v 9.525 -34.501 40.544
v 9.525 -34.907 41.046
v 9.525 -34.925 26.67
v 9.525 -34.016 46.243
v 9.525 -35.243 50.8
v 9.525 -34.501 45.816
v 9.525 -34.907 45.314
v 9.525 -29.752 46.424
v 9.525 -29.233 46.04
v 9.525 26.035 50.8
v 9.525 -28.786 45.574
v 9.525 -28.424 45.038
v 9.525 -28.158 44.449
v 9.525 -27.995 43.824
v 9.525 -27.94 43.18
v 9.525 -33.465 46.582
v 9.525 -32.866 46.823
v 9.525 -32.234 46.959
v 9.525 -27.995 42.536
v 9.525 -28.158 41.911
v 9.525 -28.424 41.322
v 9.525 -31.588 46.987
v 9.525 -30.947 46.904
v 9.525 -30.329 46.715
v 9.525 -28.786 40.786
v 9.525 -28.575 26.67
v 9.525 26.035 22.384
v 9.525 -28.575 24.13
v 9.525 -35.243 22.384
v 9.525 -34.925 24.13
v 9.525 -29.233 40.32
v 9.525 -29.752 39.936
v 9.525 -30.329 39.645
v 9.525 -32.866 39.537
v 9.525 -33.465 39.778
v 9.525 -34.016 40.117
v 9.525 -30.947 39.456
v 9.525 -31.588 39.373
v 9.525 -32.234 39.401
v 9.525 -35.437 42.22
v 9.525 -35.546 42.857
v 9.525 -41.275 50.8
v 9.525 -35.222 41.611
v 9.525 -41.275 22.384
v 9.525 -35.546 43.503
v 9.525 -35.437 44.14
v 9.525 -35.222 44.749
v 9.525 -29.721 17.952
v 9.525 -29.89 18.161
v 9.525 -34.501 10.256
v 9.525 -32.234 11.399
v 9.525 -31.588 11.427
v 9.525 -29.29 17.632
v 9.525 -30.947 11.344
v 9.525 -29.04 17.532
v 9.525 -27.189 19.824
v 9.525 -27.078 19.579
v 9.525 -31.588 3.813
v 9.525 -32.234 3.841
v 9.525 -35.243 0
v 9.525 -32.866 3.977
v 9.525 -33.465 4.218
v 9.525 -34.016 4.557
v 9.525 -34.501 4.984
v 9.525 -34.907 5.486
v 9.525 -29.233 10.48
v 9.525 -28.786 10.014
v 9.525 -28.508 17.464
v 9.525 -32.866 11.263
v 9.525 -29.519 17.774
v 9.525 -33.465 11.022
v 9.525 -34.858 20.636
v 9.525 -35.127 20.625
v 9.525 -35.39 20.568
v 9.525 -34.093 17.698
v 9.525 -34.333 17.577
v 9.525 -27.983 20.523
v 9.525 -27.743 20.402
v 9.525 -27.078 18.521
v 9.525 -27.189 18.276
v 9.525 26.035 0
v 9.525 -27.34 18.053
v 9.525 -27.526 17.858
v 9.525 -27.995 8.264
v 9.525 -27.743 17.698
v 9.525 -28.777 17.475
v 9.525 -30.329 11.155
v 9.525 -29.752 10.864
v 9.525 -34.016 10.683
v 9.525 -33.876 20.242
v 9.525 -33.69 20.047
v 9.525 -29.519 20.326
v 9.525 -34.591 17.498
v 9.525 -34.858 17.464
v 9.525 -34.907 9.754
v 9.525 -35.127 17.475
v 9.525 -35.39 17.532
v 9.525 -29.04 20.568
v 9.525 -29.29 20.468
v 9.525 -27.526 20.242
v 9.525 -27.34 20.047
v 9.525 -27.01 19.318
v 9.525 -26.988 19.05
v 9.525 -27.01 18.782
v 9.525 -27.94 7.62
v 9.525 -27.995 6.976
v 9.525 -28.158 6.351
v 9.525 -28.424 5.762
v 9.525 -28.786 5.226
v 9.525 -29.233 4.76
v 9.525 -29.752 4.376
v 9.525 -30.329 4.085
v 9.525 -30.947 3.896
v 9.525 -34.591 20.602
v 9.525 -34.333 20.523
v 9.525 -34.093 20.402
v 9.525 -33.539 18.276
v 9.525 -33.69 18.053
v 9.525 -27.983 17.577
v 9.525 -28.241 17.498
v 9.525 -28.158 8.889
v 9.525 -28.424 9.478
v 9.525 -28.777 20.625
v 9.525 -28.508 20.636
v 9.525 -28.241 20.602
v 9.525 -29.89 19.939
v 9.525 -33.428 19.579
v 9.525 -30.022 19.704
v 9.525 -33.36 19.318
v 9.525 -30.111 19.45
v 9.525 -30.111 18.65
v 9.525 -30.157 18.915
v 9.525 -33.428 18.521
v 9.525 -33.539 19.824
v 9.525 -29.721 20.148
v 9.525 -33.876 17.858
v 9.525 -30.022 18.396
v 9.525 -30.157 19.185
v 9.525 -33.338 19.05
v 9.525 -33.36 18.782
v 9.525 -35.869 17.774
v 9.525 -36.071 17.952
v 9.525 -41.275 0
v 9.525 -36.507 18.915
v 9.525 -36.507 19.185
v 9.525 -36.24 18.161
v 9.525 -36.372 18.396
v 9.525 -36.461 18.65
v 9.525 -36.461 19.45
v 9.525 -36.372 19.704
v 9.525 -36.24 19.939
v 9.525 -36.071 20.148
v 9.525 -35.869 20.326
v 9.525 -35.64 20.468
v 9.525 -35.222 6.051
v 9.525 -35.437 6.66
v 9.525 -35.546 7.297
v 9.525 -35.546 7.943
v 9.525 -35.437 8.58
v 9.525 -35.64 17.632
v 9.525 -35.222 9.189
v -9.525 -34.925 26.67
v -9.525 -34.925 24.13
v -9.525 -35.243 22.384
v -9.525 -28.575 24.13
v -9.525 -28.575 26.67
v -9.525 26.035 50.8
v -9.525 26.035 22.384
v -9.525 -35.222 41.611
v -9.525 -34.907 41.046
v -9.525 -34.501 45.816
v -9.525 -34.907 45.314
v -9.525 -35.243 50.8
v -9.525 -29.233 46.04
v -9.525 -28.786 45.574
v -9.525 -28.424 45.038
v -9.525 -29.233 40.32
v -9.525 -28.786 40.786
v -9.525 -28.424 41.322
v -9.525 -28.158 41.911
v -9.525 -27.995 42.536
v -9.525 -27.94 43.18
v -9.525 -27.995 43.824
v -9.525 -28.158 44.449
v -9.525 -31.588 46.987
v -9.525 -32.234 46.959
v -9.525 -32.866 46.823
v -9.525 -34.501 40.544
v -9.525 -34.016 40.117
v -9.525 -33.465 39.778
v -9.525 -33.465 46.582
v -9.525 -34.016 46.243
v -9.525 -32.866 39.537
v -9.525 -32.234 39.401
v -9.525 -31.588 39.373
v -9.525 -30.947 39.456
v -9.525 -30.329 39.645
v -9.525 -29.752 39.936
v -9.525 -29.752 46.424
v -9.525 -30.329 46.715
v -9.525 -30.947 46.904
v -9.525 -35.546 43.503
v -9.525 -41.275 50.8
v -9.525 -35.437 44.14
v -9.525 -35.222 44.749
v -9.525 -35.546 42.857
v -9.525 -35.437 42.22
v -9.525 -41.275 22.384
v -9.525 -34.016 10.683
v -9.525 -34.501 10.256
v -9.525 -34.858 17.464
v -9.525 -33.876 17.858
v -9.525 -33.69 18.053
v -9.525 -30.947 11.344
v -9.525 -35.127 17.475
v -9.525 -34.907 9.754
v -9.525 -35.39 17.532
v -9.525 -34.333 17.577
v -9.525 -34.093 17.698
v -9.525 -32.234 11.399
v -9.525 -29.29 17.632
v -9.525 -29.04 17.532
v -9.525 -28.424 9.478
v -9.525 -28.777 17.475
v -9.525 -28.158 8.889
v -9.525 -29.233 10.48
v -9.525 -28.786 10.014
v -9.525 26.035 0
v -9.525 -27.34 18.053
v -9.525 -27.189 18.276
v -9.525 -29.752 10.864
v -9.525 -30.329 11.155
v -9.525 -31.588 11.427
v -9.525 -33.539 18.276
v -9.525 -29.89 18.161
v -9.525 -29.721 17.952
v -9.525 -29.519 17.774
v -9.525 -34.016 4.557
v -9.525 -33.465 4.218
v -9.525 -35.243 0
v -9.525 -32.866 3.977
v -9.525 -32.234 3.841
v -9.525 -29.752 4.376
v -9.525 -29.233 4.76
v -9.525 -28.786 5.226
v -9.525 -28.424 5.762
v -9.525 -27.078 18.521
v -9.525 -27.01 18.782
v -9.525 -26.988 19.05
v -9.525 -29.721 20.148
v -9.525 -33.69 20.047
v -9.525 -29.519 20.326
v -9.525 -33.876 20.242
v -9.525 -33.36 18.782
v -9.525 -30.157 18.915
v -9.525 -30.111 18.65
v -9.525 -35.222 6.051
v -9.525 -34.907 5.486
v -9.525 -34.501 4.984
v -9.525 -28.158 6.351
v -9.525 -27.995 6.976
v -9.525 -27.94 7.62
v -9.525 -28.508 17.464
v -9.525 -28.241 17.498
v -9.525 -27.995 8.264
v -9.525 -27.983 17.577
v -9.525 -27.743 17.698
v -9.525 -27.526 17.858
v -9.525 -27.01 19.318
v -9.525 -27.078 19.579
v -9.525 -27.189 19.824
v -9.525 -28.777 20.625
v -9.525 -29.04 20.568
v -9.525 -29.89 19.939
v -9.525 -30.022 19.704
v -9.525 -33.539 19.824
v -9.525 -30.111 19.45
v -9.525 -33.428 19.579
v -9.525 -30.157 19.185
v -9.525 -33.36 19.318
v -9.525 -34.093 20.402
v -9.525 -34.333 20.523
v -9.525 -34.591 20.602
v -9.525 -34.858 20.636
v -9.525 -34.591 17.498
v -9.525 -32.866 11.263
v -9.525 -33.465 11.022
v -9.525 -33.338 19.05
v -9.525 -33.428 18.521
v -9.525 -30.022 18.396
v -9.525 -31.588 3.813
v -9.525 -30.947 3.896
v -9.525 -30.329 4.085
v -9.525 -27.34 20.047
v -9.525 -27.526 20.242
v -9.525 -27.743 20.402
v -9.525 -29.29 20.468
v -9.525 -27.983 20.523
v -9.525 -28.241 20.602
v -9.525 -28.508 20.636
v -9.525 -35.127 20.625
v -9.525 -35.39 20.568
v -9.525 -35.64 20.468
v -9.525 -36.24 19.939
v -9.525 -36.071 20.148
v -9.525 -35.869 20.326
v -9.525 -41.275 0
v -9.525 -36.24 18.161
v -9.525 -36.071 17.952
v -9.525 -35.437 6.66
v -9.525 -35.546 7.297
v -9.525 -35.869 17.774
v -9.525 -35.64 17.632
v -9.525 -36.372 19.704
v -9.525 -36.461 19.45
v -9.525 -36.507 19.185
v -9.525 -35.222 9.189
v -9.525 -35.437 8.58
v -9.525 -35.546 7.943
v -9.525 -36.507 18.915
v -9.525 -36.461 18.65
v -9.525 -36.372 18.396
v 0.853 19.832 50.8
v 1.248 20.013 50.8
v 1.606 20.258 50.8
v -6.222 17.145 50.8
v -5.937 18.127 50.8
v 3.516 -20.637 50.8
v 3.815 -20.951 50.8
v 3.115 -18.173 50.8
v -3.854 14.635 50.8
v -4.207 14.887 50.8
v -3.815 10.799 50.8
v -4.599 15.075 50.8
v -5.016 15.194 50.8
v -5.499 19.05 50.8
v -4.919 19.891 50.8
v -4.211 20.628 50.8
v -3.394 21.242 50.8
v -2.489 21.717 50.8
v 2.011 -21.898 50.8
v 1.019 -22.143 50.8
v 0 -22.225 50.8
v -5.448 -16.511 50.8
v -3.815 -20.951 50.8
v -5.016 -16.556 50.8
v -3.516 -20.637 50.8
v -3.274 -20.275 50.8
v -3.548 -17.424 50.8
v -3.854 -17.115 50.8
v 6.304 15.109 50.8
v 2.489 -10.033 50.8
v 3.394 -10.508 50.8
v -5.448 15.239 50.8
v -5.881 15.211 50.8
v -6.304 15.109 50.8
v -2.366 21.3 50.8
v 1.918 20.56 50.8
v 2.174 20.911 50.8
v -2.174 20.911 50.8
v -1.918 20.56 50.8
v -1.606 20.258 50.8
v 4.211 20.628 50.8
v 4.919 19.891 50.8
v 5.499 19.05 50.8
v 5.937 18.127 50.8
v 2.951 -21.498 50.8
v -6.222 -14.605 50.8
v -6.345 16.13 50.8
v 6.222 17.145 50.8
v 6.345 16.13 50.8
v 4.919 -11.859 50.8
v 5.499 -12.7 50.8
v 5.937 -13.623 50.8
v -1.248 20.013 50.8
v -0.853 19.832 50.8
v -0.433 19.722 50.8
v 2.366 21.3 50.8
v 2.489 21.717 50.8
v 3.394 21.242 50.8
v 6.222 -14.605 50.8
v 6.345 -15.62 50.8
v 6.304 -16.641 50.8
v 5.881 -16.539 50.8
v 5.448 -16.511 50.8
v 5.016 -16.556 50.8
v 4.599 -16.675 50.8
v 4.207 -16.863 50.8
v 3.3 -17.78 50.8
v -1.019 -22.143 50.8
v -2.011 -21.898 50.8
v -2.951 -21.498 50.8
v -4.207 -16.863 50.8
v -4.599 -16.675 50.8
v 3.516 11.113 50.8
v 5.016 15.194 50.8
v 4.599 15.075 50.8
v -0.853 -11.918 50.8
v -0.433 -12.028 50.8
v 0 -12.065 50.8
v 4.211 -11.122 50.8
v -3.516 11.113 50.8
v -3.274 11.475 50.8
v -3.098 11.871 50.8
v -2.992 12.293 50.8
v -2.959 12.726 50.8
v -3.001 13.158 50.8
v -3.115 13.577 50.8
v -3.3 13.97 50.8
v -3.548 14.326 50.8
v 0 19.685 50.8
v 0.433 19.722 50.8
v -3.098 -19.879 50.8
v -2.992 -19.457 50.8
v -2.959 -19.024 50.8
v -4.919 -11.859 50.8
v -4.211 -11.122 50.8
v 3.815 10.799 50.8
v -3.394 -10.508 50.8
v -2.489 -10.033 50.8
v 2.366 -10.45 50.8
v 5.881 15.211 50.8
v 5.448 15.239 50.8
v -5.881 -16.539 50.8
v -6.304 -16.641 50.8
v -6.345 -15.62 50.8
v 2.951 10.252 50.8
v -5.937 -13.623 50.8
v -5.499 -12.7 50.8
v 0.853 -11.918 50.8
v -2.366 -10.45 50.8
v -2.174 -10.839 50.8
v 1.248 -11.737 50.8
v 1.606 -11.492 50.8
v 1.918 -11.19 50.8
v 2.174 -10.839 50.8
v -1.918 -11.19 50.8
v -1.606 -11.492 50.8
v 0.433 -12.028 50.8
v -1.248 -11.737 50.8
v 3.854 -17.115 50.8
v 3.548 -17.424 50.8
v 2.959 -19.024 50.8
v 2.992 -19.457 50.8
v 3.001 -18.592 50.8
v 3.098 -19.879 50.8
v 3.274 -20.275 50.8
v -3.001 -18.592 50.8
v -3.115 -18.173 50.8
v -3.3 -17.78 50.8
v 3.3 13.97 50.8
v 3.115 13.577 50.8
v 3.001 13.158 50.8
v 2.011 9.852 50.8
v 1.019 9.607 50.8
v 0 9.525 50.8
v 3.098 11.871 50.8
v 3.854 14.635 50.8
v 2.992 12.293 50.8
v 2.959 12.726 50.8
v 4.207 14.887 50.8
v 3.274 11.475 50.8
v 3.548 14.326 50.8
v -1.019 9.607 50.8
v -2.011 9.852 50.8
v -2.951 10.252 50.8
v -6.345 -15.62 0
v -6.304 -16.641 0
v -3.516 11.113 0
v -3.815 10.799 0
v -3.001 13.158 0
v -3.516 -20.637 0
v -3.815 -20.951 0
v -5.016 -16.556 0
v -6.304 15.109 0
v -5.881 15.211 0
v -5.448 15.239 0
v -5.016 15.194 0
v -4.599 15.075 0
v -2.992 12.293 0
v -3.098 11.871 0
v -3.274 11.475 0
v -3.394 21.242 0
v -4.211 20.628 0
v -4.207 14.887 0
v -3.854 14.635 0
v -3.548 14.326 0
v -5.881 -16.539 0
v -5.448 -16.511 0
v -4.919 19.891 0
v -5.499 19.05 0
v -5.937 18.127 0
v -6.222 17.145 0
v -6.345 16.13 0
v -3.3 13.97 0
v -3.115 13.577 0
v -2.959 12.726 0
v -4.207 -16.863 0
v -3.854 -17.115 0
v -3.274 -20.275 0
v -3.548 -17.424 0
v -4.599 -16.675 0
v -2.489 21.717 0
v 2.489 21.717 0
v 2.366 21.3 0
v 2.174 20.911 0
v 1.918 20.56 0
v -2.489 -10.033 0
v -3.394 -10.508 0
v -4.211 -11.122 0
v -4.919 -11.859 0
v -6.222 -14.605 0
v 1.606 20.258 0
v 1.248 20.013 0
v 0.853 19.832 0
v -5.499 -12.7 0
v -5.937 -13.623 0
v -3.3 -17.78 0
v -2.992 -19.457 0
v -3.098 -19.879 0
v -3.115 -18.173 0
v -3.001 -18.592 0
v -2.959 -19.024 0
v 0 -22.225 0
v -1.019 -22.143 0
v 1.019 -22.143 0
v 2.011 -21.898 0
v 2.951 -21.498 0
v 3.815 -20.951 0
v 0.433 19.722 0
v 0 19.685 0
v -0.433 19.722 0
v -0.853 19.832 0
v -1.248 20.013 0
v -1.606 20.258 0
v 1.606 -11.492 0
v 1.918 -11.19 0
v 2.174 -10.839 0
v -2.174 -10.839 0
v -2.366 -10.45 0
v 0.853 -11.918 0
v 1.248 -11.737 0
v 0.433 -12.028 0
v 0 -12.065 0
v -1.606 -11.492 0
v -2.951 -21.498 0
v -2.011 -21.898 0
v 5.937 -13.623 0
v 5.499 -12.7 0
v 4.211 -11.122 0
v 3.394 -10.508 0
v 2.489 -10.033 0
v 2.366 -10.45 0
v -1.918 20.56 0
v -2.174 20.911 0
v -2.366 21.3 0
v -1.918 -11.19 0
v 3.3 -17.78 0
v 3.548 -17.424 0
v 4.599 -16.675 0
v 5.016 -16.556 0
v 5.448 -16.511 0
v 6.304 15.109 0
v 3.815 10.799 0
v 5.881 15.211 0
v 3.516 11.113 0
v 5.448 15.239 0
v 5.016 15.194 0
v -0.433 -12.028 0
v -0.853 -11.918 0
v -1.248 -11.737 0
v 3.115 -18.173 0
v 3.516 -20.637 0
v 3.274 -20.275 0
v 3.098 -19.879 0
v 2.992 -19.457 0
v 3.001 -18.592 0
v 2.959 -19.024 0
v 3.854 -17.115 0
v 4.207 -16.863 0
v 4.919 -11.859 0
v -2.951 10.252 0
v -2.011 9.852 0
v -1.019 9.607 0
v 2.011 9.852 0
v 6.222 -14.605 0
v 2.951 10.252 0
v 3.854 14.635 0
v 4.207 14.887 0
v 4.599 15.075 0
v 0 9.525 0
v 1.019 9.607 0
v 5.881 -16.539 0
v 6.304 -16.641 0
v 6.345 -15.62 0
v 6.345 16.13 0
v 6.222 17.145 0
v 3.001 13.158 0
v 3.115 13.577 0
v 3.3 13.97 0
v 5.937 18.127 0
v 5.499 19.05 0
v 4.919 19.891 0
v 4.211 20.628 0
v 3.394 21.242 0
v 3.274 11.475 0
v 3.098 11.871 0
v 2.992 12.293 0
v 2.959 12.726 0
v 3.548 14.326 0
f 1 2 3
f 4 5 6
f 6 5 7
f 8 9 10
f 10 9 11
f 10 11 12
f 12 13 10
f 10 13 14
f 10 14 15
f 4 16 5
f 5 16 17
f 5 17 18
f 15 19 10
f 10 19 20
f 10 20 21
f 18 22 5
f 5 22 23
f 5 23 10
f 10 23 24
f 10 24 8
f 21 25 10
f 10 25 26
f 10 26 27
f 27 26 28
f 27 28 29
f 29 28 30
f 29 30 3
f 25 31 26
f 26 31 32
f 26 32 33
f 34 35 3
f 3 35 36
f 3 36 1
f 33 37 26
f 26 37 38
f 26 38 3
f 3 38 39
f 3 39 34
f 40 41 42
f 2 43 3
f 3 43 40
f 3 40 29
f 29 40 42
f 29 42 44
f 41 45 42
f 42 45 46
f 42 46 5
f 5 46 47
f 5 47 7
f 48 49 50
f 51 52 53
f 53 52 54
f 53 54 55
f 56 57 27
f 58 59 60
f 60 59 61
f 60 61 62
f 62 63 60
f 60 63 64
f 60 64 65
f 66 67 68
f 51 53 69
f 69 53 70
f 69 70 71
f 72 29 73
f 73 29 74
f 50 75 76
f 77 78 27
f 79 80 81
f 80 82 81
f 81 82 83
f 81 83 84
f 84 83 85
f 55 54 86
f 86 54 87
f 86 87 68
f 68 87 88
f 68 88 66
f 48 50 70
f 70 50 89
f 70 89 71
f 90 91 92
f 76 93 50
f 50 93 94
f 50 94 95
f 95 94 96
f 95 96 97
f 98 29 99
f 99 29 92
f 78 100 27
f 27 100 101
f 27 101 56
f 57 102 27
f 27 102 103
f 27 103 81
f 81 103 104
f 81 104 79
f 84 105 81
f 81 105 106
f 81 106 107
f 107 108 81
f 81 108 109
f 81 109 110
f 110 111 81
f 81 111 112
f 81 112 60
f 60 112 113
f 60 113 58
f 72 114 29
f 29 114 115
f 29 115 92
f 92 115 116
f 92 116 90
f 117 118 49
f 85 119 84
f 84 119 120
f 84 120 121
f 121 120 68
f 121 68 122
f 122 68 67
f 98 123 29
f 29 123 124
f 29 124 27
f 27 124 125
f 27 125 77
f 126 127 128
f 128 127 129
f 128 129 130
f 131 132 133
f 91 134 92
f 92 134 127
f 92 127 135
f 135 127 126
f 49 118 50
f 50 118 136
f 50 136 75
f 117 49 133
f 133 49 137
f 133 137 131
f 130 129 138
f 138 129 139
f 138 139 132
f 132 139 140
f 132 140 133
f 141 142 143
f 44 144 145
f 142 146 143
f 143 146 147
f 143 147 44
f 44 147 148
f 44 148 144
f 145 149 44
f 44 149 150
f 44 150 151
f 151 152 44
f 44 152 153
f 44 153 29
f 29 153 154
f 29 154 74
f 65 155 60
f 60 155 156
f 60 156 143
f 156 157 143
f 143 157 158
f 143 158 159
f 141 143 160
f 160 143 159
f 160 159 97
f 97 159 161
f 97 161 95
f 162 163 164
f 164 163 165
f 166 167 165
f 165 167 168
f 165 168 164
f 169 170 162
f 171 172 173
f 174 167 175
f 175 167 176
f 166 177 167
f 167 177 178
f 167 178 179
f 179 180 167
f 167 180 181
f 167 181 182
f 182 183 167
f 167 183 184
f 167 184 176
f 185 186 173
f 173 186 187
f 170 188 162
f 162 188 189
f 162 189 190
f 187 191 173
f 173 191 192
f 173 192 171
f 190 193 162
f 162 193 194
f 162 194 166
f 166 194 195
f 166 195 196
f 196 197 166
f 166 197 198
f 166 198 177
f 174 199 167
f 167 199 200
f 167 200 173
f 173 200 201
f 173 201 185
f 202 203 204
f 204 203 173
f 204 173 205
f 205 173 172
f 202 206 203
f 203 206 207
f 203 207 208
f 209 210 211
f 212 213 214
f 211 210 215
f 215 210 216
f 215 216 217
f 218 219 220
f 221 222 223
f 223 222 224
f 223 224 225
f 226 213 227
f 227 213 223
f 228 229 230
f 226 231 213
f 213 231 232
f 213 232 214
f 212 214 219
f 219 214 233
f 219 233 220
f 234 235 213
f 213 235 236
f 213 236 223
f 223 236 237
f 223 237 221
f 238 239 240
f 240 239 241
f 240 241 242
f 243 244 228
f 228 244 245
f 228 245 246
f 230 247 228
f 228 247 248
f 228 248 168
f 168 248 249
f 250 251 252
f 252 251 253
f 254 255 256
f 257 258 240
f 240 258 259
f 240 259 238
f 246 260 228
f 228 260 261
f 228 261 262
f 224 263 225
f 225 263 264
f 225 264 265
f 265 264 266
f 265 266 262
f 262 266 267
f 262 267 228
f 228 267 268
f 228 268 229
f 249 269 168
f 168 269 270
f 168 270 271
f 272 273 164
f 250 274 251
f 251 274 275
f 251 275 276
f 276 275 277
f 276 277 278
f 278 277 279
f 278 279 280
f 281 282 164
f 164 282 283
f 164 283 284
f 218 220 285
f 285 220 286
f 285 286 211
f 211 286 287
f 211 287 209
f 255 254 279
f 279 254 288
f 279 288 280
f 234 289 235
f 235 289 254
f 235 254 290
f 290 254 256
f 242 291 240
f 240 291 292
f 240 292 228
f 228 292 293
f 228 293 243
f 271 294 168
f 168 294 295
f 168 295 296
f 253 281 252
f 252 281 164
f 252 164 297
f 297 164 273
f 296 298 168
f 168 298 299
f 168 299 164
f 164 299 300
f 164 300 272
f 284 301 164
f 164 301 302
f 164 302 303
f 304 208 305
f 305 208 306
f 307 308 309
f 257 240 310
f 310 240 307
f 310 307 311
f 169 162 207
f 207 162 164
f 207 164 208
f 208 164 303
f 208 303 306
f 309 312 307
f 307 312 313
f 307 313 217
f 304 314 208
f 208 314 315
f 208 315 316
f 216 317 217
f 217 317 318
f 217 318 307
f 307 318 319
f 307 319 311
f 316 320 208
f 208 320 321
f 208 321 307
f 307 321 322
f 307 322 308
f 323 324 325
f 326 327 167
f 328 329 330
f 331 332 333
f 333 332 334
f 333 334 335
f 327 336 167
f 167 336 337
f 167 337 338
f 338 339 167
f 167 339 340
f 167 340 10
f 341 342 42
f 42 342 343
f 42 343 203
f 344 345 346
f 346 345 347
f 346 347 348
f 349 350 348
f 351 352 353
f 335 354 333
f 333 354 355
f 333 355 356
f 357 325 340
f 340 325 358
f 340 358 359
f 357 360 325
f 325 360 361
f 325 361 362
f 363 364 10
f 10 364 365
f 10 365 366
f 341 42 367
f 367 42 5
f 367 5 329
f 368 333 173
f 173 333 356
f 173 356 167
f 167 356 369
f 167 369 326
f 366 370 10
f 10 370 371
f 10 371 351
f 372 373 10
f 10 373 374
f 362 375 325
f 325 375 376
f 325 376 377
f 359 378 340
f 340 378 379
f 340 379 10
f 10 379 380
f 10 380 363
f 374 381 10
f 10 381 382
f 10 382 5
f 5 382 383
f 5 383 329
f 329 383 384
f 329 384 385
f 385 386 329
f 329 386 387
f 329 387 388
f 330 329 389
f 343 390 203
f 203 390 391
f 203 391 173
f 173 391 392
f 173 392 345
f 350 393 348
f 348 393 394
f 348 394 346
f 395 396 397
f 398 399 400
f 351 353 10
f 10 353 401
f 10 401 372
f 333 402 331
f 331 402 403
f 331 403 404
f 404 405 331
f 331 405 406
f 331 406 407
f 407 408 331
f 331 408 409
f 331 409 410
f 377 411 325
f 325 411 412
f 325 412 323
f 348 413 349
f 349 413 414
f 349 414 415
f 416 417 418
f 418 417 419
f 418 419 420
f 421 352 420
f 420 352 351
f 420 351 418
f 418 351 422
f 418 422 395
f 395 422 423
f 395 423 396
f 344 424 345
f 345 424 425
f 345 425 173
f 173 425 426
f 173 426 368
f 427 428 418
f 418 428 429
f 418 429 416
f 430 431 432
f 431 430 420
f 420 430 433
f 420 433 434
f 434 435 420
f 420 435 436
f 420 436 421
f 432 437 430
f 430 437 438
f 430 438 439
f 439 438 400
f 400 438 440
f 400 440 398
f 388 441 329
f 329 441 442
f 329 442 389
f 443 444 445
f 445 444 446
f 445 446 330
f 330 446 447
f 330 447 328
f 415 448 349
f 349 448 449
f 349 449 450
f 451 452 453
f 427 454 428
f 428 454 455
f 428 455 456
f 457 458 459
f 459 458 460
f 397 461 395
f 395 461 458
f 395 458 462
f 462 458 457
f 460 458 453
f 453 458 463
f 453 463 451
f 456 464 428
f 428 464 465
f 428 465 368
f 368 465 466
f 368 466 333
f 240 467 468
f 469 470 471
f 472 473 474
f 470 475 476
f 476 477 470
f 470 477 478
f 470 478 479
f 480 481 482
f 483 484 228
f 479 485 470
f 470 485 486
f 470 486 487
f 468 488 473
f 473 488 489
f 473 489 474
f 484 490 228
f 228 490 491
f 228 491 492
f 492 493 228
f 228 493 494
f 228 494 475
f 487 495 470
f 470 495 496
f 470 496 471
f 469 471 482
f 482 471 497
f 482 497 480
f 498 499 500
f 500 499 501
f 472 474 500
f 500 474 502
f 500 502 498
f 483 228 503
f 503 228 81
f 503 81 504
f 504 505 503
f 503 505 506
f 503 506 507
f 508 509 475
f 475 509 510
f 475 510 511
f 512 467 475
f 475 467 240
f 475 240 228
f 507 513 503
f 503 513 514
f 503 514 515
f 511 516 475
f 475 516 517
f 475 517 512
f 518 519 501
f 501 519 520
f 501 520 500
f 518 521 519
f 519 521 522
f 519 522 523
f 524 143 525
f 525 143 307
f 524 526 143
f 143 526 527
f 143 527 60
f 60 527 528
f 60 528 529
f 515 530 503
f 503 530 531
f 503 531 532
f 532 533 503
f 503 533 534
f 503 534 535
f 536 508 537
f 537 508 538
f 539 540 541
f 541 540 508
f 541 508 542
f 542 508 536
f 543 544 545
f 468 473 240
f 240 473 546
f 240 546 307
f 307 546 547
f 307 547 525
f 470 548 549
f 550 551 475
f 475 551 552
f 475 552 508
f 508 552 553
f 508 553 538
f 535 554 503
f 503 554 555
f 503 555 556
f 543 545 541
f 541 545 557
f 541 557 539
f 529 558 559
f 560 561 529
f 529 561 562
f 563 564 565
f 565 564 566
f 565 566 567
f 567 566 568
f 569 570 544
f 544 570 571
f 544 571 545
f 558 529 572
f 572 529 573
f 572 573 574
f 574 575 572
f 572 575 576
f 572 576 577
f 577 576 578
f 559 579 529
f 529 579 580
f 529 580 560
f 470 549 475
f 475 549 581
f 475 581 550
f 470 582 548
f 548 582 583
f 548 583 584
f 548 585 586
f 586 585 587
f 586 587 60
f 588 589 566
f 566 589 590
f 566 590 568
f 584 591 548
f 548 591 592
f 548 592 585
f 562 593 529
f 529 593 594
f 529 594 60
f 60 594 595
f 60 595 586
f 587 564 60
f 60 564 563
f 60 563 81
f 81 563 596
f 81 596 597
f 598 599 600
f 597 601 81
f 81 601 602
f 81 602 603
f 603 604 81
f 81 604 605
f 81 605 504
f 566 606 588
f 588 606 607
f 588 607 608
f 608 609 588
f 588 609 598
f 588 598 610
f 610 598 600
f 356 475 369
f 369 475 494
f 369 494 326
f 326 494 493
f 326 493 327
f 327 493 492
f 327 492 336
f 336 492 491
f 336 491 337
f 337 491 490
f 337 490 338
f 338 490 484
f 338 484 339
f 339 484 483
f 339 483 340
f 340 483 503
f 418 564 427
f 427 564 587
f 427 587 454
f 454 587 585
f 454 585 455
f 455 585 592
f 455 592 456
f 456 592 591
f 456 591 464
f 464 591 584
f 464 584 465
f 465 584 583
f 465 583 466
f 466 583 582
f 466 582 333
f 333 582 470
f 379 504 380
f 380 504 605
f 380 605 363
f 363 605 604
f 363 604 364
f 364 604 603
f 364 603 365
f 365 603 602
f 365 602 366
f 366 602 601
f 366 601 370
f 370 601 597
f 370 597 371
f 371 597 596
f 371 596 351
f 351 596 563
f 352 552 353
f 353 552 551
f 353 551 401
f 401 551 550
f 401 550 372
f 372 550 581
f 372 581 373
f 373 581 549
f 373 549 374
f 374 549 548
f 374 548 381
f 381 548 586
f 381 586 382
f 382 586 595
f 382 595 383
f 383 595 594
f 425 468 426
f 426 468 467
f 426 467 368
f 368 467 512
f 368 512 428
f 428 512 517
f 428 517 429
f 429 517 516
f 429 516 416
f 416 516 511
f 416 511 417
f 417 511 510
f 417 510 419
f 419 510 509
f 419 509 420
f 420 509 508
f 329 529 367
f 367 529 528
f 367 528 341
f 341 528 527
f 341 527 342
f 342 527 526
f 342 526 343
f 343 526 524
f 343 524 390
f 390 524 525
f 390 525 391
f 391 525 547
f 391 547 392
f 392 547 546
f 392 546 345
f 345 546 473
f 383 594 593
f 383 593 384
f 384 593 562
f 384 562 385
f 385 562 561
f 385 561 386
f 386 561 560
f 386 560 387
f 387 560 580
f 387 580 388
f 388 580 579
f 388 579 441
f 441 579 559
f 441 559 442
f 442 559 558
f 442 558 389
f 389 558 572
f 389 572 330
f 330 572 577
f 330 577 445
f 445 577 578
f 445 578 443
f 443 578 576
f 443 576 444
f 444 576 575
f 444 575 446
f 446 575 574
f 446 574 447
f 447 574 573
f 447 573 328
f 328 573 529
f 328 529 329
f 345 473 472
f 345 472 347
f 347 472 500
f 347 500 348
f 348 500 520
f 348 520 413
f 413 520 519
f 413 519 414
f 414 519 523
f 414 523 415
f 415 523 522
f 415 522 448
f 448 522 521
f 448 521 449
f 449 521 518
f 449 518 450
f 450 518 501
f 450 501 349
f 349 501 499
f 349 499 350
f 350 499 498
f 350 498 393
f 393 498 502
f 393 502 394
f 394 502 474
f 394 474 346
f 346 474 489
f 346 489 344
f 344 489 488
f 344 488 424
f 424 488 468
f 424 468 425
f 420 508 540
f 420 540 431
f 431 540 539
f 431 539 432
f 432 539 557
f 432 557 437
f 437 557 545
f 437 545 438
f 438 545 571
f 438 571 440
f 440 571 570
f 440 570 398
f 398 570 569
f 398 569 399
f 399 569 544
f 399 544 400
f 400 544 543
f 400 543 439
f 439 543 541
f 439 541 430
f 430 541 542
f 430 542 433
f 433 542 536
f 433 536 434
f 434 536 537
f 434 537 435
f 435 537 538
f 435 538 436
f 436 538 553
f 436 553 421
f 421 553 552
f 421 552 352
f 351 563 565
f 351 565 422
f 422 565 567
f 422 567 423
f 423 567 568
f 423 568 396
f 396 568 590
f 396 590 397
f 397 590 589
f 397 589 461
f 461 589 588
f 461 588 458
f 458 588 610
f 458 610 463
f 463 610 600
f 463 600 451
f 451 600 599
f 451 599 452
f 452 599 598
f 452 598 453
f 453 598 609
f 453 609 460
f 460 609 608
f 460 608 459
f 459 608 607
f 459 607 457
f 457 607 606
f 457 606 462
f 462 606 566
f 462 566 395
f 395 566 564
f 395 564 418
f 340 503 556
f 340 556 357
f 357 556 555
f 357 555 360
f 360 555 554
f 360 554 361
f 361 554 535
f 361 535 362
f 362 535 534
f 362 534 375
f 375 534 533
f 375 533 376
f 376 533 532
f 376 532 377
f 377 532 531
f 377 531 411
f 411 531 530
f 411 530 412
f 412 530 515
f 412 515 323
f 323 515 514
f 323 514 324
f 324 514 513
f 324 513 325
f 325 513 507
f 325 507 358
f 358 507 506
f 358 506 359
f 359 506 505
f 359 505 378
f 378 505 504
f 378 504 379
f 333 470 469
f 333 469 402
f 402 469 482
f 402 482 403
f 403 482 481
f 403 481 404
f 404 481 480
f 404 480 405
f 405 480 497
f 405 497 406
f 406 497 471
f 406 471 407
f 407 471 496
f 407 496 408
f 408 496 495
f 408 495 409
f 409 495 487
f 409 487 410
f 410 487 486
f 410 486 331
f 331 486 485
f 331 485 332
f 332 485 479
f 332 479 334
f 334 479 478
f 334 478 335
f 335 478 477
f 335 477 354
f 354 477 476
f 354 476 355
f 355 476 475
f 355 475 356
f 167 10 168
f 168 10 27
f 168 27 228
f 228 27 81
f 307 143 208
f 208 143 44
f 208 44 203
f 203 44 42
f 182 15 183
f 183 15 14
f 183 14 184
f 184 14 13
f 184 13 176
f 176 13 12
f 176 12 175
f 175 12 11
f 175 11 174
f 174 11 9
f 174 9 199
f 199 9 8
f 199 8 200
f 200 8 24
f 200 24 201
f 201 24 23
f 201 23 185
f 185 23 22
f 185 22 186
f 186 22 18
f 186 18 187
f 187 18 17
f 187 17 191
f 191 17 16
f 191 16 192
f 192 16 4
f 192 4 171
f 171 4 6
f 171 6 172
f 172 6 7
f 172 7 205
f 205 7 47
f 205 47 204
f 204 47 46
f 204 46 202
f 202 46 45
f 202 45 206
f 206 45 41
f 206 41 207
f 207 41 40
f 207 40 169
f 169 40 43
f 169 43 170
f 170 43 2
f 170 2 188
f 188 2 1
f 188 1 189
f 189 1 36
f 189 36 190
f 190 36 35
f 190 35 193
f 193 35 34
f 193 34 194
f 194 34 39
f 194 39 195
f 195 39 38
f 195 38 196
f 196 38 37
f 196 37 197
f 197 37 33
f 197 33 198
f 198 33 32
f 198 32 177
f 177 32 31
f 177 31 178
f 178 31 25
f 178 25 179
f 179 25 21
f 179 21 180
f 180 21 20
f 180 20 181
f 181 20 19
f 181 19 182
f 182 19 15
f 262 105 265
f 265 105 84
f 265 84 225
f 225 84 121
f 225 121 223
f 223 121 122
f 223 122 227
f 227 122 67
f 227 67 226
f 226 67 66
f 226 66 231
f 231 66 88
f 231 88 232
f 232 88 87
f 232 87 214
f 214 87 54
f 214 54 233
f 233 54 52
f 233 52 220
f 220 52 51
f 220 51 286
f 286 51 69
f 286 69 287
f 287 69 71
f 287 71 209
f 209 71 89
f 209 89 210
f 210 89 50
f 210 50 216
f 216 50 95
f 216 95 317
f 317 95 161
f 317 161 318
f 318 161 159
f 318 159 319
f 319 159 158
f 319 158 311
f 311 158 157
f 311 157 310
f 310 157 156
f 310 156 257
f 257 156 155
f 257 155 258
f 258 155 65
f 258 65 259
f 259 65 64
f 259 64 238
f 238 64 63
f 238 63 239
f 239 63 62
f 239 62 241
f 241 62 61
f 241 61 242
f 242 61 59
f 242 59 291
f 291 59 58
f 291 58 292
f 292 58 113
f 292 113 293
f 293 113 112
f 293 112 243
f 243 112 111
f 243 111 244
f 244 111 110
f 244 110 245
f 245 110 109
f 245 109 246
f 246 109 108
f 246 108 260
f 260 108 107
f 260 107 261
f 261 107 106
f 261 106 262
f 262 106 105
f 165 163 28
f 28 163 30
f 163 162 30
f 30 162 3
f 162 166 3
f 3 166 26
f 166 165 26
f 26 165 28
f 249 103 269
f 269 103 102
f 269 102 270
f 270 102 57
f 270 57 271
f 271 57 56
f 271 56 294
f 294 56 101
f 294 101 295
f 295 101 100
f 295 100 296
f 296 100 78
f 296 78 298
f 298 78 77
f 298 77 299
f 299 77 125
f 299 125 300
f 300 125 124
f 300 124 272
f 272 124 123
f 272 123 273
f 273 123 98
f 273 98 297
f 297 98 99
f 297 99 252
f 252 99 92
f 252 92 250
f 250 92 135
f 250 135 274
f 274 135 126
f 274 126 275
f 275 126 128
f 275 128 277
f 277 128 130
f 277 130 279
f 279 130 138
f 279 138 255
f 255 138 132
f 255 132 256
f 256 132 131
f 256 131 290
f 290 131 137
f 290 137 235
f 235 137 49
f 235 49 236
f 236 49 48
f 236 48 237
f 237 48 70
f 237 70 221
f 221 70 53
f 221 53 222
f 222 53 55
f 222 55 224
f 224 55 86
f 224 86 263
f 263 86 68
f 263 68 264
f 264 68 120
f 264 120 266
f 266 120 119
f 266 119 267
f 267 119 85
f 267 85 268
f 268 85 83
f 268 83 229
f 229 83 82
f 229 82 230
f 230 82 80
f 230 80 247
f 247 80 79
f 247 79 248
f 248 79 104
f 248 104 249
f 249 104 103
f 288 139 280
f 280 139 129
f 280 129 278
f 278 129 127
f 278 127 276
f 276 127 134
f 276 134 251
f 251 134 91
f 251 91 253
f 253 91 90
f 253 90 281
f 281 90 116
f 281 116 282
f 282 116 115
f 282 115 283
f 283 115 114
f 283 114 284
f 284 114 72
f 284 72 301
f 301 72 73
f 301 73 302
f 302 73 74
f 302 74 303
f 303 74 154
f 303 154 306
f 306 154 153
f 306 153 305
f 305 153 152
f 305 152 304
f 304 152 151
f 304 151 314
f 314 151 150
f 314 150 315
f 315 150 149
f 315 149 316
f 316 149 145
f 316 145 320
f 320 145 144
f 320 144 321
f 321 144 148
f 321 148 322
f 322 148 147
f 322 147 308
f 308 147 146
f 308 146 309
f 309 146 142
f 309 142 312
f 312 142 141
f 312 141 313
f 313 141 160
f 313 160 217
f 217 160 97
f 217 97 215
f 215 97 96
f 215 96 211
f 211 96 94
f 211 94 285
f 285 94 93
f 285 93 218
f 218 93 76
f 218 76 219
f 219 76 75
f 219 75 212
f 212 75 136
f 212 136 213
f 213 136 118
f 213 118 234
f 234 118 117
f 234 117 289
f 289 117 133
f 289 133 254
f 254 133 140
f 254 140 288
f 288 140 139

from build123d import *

# Parameters (mm, degrees)
SKETCH1_W           = 19.05
SKETCH1_H           = 57.15
BOSS_EXTRUDE1_DEPTH = 50.8
SKETCH1_4_R         = 6.35
CUT_EXTRUDE1_DEPTH  = 60.05841388
SKETCH1_5_R         = 2.54
BOSS_EXTRUDE2_DEPTH = 50.8
SKETCH1_6_R         = 6.35
CUT_EXTRUDE2_DEPTH  = 60.05841388
SKETCH1_7_R         = 2.54
BOSS_EXTRUDE3_DEPTH = 50.8
SKETCH11_W          = 19.05
SKETCH11_H          = 50.8
CUT_EXTRUDE12_DEPTH = 2.54
SKETCH12_W          = 19.05
SKETCH12_H          = 50.8
BOSS_EXTRUDE4_DEPTH = 12.7
SKETCH13_R          = 3.81
CUT_EXTRUDE15_DEPTH = 69.170141008
SKETCH13_6_W        = 2.54
SKETCH13_6_H        = 6.35
CUT_EXTRUDE16_DEPTH = 69.170141008
SKETCH13_7_R        = 1.5875
CUT_EXTRUDE17_DEPTH = 69.170141008


with BuildPart() as part:
    # Sketch1 → Boss-Extrude1 (new body)
    with BuildSketch(Plane.XY):
        Rectangle(SKETCH1_W, SKETCH1_H)
    extrude(amount=BOSS_EXTRUDE1_DEPTH)

    # Sketch1<4> → Cut-Extrude1 (cut, through all)
    with BuildSketch(Plane.XY):
        with Locations((0, -15.875)):
            Circle(SKETCH1_4_R)
    extrude(amount=CUT_EXTRUDE1_DEPTH, mode=Mode.SUBTRACT)

    # Sketch1<5> → Boss-Extrude2 (add, through all)
    with BuildSketch(Plane.XY):
        with Locations((0, -9.525)):
            Circle(SKETCH1_5_R)
        with Locations((5.499261314, -19.05)):
            Circle(SKETCH1_5_R)
        with Locations((-5.499261314, -19.05)):
            Circle(SKETCH1_5_R)
    extrude(amount=BOSS_EXTRUDE2_DEPTH)

    # Sketch1<6> → Cut-Extrude2 (cut, through all)
    with BuildSketch(Plane.XY):
        with Locations((0, 15.875)):
            Circle(SKETCH1_6_R)
    extrude(amount=CUT_EXTRUDE2_DEPTH, mode=Mode.SUBTRACT)

    # Sketch1<7> → Boss-Extrude3 (add, through all)
    with BuildSketch(Plane.XY):
        with Locations((0, 22.225)):
            Circle(SKETCH1_7_R)
        with Locations((5.499261314, 12.7)):
            Circle(SKETCH1_7_R)
        with Locations((-5.499261314, 12.7)):
            Circle(SKETCH1_7_R)
    extrude(amount=BOSS_EXTRUDE3_DEPTH)

    # Sketch11 → Cut-Extrude12 (cut)
    with BuildSketch(Plane(origin=(0, 28.575, 0), x_dir=(1, 0, 0), z_dir=(0, 1, 0))):
        with Locations((0, -25.4)):
            Rectangle(SKETCH11_W, SKETCH11_H)
    extrude(amount=-CUT_EXTRUDE12_DEPTH, mode=Mode.SUBTRACT)

    # Sketch12 → Boss-Extrude4 (add)
    with BuildSketch(Plane.XZ.offset(28.575)):
        with Locations((0, 25.4)):
            Rectangle(SKETCH12_W, SKETCH12_H)
    extrude(amount=BOSS_EXTRUDE4_DEPTH)

    # Sketch13 → Cut-Extrude15 (cut, through all)
    with BuildSketch(Plane(origin=(9.525, 0, 0), x_dir=(0, 0, -1), z_dir=(1, 0, 0))):
        with Locations(Location((-43.18, -31.75, 0), (0, 0, 90))):
            Circle(SKETCH13_R)
        with Locations(Location((-7.62, -31.75, 0), (0, 0, 90))):
            Circle(SKETCH13_R)
    extrude(amount=-CUT_EXTRUDE15_DEPTH, mode=Mode.SUBTRACT)

    # Sketch13<6> → Cut-Extrude16 (cut, through all)
    with BuildSketch(Plane(origin=(9.525, 0, 0), x_dir=(0, 0, -1), z_dir=(1, 0, 0))):
        with Locations((-25.4, -31.75)):
            Rectangle(SKETCH13_6_W, SKETCH13_6_H)
    extrude(amount=-CUT_EXTRUDE16_DEPTH, mode=Mode.SUBTRACT)

    # Sketch13<7> → Cut-Extrude17 (cut, through all)
    with BuildSketch(Plane(origin=(9.525, 0, 0), x_dir=(0, 0, -1), z_dir=(1, 0, 0))):
        with Locations(Location((-19.05, -28.575, 0), (0, 0, 90))):
            Circle(SKETCH13_7_R)
        with Locations(Location((-19.05, -34.925, 0), (0, 0, 90))):
            Circle(SKETCH13_7_R)
    extrude(amount=-CUT_EXTRUDE17_DEPTH, mode=Mode.SUBTRACT)


solid = part.part
